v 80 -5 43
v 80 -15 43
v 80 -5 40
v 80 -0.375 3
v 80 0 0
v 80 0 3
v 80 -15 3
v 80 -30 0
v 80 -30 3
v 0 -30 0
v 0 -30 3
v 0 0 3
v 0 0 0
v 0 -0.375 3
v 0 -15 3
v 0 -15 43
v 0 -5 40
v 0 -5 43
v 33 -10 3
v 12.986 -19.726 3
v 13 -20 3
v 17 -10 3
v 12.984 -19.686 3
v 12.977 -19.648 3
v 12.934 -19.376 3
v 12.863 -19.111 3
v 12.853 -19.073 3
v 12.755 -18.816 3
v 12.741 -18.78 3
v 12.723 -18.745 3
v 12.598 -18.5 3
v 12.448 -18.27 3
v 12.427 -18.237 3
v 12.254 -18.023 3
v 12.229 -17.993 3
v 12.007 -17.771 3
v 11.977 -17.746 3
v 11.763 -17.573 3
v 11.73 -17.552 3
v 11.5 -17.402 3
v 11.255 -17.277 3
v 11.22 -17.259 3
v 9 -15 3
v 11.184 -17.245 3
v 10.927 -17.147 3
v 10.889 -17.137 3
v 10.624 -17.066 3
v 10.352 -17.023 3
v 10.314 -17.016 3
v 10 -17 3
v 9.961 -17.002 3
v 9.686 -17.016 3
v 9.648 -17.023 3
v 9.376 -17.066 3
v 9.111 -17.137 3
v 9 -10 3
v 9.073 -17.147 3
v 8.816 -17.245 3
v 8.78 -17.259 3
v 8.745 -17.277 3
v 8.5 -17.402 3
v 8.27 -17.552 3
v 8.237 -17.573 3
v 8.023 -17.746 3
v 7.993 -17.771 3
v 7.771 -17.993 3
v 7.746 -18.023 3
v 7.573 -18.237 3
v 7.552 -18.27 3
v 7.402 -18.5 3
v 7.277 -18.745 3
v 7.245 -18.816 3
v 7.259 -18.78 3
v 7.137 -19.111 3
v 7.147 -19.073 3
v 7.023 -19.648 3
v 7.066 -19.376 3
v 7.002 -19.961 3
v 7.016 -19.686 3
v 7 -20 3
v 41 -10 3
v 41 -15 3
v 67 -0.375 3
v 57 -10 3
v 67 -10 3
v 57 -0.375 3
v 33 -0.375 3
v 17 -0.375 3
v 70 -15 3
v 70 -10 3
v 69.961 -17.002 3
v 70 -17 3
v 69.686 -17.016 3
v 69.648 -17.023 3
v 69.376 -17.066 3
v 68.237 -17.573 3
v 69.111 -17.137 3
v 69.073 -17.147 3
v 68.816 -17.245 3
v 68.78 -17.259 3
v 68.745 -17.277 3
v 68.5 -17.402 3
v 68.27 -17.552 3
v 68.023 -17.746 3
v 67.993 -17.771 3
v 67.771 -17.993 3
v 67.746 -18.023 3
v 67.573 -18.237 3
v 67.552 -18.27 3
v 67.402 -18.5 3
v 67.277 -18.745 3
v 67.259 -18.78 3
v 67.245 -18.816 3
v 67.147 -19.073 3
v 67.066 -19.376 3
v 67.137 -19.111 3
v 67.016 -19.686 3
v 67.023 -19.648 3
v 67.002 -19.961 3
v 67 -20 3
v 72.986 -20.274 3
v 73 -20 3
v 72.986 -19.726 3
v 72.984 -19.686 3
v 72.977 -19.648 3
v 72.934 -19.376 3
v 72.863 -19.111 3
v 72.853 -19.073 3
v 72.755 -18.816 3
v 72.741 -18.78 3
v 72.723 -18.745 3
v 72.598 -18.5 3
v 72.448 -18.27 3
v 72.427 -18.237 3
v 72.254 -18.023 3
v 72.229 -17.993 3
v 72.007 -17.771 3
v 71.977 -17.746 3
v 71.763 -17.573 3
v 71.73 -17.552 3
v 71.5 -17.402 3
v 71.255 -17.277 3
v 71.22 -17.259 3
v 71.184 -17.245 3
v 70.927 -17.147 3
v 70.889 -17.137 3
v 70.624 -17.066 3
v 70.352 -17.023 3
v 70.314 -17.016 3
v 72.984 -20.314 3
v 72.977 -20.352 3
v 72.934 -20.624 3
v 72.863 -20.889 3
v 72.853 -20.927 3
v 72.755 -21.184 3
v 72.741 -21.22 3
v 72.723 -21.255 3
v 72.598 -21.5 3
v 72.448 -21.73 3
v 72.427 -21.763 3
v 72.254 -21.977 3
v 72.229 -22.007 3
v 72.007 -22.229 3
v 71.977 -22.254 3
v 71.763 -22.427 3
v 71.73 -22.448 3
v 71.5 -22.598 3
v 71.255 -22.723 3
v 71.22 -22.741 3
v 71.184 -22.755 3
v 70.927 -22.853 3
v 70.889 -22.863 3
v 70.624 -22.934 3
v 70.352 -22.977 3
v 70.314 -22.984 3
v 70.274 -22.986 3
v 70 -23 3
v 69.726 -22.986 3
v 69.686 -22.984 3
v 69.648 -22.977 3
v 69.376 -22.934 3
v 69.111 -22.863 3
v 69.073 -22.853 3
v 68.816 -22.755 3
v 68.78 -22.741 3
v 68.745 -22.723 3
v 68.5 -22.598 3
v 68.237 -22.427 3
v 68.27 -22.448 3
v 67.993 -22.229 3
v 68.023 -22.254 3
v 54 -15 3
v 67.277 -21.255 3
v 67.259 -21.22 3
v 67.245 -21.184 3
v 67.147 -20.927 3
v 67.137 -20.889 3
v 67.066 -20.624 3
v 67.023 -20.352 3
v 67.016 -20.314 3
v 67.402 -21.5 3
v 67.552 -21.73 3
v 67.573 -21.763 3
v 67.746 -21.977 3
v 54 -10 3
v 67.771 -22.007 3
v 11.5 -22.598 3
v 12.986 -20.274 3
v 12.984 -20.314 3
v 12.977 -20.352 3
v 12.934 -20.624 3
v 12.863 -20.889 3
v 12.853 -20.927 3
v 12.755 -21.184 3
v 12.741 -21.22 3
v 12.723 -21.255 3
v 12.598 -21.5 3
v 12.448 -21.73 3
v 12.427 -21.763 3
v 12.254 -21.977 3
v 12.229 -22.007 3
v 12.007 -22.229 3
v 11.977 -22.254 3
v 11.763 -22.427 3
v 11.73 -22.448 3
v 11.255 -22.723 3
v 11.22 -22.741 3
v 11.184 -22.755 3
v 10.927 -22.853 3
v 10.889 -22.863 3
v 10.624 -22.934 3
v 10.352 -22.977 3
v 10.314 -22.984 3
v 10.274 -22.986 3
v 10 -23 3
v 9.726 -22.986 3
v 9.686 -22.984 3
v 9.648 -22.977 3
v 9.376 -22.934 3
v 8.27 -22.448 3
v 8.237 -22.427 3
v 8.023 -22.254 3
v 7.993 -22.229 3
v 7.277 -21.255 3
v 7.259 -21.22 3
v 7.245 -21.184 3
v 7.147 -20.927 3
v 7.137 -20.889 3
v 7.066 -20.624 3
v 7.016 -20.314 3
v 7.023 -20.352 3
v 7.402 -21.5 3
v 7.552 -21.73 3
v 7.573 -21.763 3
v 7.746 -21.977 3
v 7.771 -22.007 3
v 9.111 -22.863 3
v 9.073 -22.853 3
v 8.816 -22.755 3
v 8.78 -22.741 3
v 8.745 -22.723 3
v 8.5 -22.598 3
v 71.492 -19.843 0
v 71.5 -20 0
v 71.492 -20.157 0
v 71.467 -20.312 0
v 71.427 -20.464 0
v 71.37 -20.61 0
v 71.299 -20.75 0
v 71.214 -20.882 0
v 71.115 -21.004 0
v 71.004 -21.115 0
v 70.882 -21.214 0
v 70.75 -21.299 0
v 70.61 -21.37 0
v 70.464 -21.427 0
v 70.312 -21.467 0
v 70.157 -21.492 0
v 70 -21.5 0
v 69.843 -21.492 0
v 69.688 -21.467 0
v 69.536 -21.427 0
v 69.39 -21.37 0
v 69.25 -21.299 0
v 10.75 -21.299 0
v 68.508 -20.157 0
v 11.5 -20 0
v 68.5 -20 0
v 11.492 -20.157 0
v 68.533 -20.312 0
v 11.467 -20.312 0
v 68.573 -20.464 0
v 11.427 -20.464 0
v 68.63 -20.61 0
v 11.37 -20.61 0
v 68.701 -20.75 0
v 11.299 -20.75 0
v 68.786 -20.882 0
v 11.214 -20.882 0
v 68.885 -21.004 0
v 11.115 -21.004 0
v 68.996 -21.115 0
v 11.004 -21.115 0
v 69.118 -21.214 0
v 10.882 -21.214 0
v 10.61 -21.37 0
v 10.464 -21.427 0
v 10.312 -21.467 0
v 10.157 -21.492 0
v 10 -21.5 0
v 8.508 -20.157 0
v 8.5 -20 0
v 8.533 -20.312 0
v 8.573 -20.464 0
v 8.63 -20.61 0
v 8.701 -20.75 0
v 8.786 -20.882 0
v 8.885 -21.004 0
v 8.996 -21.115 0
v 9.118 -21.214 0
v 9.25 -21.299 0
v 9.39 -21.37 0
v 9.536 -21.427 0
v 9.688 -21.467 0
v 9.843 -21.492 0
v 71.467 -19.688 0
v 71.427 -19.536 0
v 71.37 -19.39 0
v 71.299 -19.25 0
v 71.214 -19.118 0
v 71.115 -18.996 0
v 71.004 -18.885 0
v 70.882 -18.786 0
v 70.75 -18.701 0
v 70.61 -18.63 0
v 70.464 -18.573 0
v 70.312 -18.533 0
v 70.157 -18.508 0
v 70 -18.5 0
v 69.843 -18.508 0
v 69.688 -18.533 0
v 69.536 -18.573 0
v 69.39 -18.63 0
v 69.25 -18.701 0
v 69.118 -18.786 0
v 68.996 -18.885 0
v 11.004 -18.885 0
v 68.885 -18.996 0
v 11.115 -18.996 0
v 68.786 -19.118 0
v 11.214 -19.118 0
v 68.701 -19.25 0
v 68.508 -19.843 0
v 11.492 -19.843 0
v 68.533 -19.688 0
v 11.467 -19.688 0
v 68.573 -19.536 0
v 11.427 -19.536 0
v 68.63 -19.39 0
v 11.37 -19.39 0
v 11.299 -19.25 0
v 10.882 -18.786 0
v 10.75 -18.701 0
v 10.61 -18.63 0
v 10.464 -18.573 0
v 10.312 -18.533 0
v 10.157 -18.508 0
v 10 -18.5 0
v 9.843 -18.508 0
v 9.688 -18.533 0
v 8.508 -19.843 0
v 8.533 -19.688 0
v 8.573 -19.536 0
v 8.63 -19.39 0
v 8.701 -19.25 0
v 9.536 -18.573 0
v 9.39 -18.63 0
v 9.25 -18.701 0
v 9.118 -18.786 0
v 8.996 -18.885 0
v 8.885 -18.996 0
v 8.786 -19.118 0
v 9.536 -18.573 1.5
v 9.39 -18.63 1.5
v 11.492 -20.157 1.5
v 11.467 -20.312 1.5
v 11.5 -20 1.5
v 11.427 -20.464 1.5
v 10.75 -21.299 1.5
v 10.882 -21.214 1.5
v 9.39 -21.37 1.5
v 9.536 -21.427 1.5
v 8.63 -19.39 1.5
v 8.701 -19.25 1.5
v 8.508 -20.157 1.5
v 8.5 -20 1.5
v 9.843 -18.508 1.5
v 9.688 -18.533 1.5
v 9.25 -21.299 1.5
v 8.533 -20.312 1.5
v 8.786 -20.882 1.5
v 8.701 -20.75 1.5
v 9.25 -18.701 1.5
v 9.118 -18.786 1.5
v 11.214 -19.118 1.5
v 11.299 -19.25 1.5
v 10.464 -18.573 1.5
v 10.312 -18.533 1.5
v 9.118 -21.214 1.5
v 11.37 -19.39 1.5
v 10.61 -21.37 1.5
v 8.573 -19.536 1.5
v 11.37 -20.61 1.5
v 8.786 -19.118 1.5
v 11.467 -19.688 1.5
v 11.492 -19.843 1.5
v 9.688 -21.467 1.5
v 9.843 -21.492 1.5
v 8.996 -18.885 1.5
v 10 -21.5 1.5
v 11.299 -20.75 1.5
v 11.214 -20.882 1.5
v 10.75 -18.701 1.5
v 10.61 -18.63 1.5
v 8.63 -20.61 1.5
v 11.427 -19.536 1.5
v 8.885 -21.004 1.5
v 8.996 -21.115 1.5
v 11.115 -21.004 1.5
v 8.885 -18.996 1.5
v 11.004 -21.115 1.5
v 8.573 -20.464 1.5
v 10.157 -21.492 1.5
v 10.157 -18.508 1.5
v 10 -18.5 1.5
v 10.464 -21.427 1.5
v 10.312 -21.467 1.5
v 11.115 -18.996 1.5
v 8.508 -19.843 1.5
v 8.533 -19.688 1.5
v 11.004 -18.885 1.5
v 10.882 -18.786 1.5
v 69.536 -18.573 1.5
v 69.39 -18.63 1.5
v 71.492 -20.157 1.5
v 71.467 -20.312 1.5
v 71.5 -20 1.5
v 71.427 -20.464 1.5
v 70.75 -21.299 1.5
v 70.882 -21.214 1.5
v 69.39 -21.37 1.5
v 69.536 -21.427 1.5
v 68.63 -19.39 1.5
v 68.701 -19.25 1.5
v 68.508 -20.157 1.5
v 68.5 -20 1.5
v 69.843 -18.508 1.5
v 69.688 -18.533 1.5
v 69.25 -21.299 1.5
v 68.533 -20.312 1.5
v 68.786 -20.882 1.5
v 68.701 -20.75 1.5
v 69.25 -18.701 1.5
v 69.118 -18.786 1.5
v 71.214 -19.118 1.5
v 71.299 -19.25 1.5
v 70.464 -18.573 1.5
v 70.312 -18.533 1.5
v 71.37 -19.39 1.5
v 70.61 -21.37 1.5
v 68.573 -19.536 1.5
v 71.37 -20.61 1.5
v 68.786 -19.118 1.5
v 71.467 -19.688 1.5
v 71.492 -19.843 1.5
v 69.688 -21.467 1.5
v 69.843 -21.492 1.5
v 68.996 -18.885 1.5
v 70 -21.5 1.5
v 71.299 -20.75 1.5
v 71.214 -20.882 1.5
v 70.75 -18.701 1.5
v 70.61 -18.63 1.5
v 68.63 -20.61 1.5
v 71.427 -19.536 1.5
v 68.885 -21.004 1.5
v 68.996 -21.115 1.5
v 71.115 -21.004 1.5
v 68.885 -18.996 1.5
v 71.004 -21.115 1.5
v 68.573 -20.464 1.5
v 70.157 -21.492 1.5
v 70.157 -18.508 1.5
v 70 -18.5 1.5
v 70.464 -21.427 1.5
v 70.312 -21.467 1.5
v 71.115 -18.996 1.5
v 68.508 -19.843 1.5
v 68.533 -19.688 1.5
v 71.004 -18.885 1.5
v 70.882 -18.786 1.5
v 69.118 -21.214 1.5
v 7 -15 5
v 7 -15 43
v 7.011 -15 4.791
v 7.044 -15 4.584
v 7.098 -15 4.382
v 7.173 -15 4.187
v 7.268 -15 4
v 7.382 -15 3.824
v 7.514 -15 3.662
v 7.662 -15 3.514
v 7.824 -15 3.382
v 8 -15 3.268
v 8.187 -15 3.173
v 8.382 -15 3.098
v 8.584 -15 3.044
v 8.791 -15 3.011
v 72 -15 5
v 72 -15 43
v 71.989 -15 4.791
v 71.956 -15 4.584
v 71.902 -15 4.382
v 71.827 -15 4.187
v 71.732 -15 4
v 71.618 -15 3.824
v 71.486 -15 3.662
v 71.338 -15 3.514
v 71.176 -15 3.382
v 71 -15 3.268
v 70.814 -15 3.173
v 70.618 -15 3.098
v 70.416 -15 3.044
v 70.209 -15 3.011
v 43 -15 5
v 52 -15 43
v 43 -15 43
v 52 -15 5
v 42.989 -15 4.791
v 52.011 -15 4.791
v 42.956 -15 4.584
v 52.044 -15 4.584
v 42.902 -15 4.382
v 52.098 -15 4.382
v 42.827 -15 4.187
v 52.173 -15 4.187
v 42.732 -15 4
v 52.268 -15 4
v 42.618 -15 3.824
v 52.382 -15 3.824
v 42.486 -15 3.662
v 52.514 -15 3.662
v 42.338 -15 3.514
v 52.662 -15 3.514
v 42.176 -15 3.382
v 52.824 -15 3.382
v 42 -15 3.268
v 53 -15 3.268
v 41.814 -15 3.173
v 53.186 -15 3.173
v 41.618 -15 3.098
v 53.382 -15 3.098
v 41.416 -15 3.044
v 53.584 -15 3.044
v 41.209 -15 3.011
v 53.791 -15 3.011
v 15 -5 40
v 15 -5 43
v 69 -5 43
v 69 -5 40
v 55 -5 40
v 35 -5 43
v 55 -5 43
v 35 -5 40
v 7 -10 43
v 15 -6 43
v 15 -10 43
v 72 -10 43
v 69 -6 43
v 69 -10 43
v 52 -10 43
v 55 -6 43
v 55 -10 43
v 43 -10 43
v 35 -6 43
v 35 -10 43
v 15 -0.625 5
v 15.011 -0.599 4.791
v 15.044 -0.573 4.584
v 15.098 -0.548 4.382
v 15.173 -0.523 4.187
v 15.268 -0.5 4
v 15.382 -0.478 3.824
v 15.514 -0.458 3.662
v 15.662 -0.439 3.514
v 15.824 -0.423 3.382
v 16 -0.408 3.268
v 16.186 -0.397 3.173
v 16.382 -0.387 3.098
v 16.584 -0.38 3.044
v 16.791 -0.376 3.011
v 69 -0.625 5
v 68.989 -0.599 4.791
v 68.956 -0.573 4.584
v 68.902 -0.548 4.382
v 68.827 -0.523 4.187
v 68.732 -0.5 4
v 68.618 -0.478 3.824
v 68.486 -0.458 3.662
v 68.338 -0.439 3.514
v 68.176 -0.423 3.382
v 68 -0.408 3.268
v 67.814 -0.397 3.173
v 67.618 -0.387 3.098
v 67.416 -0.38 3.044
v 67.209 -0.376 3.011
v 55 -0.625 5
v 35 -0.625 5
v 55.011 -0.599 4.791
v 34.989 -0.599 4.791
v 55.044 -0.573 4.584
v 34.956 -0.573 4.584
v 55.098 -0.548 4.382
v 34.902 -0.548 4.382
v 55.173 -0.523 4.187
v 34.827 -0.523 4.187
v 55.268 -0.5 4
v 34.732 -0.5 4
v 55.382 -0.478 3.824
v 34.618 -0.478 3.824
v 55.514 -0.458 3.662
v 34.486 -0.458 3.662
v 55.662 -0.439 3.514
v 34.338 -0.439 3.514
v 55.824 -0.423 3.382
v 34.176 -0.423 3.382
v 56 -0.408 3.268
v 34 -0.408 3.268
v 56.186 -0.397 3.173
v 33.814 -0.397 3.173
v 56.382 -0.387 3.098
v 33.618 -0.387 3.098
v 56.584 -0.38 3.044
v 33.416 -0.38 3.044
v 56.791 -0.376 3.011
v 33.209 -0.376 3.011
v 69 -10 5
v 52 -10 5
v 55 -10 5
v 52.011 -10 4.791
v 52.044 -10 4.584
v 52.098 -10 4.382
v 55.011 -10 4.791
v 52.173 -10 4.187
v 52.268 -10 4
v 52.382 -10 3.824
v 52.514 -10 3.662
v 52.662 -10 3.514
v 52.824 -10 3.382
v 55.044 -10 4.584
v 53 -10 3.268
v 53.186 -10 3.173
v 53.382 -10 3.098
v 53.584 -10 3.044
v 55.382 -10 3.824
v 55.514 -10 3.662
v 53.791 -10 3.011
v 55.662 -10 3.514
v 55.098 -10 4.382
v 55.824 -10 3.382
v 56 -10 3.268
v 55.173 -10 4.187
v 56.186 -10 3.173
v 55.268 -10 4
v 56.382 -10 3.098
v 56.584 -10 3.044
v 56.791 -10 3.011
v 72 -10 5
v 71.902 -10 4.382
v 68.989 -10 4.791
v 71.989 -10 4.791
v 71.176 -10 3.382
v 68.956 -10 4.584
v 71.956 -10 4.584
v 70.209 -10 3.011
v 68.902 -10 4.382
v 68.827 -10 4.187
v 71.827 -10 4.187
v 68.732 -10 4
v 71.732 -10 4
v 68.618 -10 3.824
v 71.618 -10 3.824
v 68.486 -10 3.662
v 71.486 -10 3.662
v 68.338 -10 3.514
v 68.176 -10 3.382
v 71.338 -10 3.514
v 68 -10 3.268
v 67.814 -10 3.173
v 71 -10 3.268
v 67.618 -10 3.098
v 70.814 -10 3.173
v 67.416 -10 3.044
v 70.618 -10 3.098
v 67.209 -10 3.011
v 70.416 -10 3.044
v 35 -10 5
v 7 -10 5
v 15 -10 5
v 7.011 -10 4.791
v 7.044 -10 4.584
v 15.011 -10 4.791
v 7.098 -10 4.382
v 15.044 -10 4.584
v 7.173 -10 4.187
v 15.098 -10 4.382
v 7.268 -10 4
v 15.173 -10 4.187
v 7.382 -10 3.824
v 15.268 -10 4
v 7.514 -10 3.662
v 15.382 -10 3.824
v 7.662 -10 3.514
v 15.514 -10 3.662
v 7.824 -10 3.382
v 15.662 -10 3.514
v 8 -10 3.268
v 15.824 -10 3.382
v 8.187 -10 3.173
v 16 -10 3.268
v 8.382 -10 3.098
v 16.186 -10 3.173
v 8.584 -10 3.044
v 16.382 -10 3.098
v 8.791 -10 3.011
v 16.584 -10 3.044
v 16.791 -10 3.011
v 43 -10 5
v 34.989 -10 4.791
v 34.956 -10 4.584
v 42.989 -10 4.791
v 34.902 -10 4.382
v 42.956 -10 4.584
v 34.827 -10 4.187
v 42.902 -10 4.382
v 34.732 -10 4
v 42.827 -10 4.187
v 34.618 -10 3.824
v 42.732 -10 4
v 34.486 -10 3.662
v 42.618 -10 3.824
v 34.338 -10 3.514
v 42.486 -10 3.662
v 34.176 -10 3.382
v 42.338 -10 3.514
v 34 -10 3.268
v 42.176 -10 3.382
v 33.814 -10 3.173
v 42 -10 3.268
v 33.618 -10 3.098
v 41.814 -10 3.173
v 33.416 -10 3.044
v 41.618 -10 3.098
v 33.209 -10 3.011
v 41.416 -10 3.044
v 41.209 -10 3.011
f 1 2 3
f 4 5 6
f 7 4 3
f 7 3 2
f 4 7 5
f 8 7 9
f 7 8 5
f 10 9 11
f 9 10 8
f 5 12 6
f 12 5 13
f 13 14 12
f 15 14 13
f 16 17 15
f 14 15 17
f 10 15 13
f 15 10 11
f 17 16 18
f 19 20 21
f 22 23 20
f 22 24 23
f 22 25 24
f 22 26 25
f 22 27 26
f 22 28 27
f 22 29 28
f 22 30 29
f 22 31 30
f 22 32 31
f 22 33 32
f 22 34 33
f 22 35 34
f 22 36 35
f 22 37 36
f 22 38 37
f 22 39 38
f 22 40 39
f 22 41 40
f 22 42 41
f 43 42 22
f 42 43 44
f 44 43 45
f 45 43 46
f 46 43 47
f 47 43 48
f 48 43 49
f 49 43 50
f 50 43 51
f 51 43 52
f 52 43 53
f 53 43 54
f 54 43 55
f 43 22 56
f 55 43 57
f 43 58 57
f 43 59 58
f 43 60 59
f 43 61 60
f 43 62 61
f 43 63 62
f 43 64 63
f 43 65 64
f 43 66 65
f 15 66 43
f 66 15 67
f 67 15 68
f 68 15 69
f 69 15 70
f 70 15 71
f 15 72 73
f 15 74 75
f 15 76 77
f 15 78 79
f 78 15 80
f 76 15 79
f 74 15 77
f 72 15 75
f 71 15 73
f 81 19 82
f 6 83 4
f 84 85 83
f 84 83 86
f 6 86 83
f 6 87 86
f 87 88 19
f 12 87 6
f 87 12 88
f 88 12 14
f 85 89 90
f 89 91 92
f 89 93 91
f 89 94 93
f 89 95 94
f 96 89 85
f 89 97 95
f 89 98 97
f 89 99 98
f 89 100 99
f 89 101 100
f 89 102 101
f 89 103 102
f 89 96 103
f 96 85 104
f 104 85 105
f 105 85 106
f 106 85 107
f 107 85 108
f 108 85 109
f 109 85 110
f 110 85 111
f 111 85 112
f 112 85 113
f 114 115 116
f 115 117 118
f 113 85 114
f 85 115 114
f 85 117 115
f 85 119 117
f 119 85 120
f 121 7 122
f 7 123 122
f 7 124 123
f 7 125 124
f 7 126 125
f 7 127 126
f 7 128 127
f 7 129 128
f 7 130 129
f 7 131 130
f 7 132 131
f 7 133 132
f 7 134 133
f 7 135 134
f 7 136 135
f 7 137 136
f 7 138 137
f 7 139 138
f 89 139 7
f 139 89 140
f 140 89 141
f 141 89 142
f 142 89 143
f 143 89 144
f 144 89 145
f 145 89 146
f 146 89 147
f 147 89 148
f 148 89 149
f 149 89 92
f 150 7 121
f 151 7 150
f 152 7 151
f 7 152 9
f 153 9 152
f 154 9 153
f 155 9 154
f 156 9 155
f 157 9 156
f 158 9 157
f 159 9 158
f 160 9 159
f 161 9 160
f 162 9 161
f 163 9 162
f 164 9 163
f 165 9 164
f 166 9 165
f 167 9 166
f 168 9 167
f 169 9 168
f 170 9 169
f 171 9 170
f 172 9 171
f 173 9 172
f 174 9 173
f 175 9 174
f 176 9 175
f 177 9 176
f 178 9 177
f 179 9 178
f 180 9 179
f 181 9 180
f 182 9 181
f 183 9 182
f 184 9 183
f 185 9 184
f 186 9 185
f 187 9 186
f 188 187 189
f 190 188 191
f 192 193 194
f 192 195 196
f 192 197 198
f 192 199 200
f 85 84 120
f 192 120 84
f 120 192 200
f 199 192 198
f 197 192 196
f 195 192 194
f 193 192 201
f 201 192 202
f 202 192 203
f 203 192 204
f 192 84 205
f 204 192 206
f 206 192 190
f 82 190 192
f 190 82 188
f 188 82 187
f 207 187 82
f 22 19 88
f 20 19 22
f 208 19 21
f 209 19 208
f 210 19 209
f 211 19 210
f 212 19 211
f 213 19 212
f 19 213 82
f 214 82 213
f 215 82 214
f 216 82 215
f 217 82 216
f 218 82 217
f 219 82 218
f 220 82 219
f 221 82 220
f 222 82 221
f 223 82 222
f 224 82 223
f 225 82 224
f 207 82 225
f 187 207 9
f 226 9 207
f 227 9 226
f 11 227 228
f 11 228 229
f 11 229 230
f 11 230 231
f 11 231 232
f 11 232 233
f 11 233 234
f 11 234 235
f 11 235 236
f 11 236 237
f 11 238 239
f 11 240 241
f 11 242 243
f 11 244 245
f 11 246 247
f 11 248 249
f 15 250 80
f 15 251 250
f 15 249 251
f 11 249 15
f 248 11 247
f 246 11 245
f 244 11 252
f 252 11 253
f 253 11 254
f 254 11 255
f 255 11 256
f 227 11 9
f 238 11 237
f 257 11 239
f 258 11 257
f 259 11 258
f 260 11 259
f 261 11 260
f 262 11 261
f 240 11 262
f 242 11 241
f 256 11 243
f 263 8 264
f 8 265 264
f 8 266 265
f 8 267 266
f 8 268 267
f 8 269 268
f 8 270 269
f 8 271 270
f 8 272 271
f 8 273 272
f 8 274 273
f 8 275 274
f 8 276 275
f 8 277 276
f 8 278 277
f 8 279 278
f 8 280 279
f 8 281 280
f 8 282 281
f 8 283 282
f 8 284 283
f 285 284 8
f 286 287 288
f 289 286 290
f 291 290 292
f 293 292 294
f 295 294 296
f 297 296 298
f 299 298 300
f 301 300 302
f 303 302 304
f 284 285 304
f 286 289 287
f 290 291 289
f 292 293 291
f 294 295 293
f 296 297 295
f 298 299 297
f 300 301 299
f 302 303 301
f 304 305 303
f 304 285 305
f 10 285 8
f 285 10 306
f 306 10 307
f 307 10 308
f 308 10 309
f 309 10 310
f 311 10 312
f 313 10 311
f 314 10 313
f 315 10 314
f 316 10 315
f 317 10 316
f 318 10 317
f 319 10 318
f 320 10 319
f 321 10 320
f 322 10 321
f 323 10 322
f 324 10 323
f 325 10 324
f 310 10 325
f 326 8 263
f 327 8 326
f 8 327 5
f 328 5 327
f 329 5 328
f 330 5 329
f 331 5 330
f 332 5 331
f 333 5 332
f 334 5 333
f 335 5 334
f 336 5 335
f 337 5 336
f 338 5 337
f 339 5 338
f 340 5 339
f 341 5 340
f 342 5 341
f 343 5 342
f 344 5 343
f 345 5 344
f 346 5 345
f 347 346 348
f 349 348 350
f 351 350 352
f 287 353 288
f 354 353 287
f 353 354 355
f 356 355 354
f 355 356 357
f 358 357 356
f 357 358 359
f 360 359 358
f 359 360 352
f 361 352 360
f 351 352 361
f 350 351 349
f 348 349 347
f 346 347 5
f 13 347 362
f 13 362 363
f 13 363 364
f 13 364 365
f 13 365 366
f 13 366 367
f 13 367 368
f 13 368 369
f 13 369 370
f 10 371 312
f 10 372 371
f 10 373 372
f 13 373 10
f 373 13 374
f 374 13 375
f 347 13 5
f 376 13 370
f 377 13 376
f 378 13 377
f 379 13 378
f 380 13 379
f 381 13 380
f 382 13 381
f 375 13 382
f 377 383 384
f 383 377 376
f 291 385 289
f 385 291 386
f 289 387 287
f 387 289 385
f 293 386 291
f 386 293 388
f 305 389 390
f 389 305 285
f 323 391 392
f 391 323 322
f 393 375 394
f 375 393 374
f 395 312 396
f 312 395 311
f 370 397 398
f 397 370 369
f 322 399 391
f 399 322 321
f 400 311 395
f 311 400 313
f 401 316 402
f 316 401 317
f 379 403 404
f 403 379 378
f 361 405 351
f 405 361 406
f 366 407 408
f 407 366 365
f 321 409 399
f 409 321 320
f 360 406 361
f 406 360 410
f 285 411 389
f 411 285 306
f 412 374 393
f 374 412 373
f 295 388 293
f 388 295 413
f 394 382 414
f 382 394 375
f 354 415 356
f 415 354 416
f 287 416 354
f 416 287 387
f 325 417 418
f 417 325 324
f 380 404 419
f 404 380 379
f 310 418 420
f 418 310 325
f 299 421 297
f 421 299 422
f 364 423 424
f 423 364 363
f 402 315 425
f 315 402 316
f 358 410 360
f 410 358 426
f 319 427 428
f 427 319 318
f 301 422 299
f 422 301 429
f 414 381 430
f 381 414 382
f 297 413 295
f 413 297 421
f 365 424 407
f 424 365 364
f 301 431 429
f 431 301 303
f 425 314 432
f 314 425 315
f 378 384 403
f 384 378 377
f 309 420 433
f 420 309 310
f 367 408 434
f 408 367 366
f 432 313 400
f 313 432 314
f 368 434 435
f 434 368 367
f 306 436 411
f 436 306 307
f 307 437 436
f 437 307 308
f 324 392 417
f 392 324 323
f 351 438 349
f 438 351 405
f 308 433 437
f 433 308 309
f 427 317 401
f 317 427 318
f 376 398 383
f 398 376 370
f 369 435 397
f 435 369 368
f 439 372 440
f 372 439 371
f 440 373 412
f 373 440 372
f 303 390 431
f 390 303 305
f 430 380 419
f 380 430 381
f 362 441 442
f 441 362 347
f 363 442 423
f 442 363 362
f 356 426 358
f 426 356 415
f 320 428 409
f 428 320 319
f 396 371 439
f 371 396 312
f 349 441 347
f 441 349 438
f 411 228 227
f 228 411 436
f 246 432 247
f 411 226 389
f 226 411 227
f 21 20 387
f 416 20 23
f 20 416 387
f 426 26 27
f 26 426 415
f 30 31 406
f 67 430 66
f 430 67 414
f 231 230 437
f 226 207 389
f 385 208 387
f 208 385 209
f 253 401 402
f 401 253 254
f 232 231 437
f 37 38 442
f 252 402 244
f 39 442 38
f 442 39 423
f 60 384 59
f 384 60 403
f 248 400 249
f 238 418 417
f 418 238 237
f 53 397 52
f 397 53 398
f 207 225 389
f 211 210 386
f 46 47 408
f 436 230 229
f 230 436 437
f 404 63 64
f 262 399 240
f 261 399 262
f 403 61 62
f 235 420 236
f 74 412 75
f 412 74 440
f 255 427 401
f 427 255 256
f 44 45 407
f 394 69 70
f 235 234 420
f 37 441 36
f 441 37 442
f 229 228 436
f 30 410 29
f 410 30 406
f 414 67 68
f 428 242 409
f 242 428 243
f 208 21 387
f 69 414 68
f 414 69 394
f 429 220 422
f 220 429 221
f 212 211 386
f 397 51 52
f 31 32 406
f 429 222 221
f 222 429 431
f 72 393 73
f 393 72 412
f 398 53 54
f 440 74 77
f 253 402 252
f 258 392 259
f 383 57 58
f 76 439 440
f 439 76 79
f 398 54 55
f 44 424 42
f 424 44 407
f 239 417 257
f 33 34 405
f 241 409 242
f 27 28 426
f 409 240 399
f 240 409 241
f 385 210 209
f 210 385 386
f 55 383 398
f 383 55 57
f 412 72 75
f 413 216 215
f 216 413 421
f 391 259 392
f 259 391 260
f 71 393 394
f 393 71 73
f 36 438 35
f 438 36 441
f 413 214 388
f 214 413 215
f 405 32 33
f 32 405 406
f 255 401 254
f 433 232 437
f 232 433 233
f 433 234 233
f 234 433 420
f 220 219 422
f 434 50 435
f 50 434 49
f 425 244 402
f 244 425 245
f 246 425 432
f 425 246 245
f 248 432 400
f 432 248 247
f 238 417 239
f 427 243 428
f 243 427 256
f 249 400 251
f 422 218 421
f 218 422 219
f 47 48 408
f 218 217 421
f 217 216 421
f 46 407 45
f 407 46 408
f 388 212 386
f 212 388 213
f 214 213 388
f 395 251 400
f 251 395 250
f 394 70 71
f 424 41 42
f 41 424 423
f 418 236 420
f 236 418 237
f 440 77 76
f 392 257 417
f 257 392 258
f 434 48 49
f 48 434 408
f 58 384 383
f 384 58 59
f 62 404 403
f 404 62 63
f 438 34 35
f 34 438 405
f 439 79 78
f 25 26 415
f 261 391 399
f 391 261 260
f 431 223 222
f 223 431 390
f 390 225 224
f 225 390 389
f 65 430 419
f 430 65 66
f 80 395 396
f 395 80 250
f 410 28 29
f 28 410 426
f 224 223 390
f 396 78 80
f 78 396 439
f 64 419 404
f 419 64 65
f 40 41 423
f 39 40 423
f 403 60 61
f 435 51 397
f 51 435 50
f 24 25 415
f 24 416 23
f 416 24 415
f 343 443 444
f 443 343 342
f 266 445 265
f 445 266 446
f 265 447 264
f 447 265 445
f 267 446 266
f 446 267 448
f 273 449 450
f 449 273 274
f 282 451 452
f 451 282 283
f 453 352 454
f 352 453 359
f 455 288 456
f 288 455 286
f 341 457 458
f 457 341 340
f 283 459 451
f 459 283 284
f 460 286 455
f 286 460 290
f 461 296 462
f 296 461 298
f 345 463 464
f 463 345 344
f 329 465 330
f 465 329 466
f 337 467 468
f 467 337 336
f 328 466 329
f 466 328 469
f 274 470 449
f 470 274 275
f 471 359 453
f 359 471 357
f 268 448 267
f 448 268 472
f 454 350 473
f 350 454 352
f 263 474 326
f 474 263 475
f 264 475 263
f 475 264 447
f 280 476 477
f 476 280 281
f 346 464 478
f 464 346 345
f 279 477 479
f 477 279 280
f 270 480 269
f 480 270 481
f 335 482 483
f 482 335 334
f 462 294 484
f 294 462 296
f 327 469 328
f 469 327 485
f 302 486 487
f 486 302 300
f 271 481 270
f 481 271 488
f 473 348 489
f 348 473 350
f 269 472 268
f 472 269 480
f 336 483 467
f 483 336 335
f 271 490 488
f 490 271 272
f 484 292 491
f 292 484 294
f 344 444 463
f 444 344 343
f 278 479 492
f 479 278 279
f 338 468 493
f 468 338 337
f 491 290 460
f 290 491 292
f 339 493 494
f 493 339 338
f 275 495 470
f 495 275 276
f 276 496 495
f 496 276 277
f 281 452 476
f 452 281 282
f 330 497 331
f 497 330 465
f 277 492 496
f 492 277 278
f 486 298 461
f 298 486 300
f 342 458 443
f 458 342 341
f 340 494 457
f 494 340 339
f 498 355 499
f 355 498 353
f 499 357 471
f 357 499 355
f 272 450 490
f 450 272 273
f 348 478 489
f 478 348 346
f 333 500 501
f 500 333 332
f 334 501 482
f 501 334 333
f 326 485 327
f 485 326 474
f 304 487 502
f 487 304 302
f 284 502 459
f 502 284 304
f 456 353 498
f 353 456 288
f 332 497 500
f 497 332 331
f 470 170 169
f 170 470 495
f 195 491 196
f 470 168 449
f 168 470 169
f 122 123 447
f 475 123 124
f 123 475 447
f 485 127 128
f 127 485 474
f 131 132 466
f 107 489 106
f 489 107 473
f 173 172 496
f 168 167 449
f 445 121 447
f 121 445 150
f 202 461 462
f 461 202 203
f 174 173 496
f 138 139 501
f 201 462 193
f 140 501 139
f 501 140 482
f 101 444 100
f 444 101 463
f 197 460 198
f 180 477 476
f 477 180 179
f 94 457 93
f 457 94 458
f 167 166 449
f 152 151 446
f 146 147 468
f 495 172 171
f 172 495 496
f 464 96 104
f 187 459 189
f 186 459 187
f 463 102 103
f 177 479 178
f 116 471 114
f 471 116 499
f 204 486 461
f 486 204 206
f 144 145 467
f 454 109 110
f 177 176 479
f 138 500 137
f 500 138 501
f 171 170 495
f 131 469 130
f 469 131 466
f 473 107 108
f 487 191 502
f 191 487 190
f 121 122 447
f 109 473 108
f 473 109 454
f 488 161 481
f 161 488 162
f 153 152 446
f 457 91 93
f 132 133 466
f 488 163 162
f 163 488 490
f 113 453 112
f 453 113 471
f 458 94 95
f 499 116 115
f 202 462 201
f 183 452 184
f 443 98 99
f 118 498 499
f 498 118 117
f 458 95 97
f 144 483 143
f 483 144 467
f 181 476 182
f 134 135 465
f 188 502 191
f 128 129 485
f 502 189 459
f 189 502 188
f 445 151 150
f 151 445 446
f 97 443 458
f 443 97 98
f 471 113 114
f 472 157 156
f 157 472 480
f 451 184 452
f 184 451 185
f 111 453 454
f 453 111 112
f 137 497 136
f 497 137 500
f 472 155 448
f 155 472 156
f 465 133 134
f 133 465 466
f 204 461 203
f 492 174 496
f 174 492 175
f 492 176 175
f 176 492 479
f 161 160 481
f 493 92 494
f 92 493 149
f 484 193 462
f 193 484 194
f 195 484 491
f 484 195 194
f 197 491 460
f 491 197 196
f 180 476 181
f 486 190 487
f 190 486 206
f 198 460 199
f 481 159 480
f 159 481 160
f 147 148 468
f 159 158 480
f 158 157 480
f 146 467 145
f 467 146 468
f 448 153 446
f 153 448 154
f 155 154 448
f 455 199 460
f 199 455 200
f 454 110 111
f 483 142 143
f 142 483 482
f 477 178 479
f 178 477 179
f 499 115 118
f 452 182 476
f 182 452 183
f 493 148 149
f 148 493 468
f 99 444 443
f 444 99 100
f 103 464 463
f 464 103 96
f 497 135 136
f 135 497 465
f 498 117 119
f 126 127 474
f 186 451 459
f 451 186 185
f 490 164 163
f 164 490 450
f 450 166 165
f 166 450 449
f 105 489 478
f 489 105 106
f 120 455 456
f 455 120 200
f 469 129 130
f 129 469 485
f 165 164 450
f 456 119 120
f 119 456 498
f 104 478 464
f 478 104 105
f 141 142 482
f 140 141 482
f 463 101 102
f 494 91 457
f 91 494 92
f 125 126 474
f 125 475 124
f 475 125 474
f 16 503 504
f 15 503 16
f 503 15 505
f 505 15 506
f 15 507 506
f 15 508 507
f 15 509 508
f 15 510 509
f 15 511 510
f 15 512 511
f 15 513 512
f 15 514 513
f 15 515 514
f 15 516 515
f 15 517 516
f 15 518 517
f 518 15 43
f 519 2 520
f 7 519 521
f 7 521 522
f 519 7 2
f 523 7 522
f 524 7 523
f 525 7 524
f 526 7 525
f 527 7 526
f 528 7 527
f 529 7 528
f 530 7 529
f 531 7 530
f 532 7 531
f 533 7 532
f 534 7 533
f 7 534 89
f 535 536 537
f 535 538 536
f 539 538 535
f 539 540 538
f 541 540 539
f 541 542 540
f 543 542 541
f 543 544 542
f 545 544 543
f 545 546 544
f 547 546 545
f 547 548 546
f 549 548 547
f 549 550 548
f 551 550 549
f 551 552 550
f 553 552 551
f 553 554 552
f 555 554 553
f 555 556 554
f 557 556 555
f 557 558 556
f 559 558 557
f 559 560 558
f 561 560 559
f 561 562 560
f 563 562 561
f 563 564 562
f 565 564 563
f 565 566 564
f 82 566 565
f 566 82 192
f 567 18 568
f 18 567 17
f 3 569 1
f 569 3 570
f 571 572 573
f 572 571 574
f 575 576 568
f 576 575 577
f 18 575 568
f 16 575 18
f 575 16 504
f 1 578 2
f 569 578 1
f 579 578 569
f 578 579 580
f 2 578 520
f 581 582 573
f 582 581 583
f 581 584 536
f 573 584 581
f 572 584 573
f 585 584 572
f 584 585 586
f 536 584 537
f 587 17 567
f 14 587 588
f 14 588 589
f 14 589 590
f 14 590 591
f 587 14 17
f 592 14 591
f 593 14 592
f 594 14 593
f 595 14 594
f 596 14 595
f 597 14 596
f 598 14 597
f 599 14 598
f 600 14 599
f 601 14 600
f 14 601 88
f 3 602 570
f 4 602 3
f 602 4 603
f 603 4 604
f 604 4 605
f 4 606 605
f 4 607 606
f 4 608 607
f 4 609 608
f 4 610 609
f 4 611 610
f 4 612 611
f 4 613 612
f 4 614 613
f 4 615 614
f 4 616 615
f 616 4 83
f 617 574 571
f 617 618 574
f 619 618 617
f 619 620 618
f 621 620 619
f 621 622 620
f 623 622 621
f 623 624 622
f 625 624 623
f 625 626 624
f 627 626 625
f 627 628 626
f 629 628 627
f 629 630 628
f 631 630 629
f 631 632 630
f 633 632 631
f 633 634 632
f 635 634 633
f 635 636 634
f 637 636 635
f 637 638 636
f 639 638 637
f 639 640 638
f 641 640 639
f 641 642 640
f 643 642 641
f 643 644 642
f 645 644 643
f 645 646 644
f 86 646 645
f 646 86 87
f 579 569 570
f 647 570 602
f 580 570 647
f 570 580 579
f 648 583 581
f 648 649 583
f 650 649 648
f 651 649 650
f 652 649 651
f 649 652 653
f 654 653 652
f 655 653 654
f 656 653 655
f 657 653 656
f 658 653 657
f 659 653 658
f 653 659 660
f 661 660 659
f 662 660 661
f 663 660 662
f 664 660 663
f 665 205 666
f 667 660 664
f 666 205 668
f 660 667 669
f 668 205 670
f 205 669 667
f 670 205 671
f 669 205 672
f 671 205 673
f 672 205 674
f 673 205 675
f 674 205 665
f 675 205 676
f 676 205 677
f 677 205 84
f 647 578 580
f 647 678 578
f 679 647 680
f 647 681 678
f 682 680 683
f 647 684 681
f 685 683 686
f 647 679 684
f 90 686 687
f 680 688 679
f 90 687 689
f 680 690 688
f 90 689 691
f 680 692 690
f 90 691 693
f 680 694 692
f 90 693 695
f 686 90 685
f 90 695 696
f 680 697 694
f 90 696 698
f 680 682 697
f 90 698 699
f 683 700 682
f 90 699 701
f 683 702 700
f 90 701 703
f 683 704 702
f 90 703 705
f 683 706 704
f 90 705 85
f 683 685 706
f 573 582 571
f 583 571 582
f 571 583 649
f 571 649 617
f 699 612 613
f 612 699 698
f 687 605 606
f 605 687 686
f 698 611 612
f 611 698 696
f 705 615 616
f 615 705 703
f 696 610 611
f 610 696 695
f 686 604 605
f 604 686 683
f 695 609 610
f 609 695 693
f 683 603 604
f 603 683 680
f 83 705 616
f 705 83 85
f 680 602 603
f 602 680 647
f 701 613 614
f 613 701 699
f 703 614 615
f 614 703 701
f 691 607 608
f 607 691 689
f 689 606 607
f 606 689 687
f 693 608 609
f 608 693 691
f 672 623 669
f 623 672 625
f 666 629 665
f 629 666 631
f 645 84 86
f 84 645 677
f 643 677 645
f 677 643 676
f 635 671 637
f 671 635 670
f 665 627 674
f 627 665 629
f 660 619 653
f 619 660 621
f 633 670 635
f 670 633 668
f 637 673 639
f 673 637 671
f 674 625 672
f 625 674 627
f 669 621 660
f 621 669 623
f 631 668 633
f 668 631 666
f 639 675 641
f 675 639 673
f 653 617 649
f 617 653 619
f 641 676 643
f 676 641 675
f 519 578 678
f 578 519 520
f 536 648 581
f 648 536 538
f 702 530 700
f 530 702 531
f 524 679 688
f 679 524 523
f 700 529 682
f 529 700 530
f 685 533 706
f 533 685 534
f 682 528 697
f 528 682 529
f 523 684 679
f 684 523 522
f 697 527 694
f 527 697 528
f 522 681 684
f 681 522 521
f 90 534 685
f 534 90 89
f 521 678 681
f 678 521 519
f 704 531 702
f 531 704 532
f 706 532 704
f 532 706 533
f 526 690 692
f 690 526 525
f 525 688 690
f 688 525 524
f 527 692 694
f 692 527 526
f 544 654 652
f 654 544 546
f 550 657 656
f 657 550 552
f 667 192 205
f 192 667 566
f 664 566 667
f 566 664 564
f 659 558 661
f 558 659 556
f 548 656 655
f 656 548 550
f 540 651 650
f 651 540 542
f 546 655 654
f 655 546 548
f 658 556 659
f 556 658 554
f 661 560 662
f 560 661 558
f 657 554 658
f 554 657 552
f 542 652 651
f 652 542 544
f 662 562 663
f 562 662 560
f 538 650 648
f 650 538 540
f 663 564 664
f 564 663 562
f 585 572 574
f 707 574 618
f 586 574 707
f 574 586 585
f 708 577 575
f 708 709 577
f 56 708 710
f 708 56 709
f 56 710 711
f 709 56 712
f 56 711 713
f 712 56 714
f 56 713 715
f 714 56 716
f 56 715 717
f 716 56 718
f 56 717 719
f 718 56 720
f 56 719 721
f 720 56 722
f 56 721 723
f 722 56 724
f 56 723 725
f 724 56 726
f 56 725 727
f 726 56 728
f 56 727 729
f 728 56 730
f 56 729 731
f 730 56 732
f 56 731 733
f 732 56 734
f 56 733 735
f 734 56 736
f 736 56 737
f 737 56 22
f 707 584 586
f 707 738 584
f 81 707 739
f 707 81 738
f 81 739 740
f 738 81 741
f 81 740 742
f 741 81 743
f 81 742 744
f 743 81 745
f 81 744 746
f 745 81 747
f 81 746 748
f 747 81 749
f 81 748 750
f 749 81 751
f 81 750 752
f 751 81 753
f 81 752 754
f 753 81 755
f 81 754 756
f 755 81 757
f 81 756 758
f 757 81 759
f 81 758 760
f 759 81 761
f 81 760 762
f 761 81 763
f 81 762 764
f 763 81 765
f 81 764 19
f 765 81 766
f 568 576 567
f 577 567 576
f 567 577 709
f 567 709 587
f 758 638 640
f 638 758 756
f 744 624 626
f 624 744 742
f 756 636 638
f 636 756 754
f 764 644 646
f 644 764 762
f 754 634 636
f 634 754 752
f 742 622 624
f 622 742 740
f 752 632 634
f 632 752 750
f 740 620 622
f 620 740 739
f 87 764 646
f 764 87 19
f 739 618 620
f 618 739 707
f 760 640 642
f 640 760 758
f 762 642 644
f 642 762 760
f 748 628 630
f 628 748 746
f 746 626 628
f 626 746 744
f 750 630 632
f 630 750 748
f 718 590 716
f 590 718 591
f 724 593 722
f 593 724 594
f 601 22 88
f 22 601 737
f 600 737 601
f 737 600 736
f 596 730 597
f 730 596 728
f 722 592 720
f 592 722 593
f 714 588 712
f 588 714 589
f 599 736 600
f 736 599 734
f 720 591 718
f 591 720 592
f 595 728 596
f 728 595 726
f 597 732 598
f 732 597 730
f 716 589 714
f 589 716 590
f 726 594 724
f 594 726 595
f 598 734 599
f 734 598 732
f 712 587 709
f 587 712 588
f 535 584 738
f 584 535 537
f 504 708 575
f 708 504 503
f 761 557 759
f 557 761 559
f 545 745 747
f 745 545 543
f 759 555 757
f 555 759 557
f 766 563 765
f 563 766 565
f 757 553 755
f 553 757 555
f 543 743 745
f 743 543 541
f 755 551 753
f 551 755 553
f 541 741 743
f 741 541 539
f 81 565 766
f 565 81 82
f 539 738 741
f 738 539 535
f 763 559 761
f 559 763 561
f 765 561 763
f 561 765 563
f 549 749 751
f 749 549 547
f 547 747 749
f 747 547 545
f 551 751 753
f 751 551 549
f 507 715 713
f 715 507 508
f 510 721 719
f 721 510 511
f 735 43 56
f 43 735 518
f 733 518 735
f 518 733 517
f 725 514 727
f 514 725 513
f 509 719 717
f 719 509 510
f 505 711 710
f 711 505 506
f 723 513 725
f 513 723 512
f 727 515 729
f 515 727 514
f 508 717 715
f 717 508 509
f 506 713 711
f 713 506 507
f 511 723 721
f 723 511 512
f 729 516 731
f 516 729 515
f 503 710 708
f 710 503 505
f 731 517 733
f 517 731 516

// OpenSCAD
$fn = 60;

rotate([90, 0, 0]) {
 difference () {
   cube([80, 3, 30]);
   translate([10, 4, 20]) rotate([90, 0, 0]) cylinder(5, r=1.5);
   translate([10, 1.5, 20]) rotate([-90, 0, 0]) cylinder(2, r1=1.5, r2=3.5);
   translate([70, 4, 20]) rotate([90, 0, 0]) cylinder(5, r=1.5);
   translate([70, 1.5, 20]) rotate([-90, 0, 0]) cylinder(2, r1=1.5, r2=3.5);
 

 
   }



translate([0, 0, 5]) 
difference () {
  union () {
  translate([0, 3, 0]) cube([80, 40, 10]);
  translate([0, 0, -5]) rotate([90, 0, 90]) linear_extrude(height=80) polygon([[0,0], [40,5], [0,5]]);
  }
  translate([79-20-4, 5, -5]) cube([14, 39, 10]);
  translate([91-20-4, 5, -5]) cylinder(10, r=2);
  translate([81-20-4, 5, -5]) cylinder(10, r=2);
  translate([81-20-4, 3, -5]) cube([10,2,16]);


  translate([80-20-8, 5, 5]) cube([20, 39, 6]);
  translate([94-20-4, 5, 5]) cylinder(6, r=2);
  translate([78-20-4, 5, 5]) cylinder(6, r=2);
  translate([82-20-8, 3, 5]) cube([16,2,6]);


  
  translate([40-21-4, 5, -5]) cube([20, 39, 10]);
  translate([57-20-4, 5, -5]) cylinder(14, r=2);
  translate([41-20-4, 5, -5]) cylinder(14, r=2);
  translate([41-20-4, 3, -5]) cube([16,2,10]);


  translate([40-21-12, 5, 5]) cube([36, 39, 6]);
  translate([65-20-4, 5, 5]) cylinder(6, r=2);
  translate([33-20-4, 5, 5]) cylinder(6, r=2);
  translate([37-20-8, 3, 5]) cube([32,2,6]);


}





translate([15, 40, 5]) rotate([0, -90, 0]) linear_extrude(height=8) polygon([[0,0], [0, 3], [1,3]]);

translate([43, 40, 5]) rotate([0, -90, 0]) linear_extrude(height=8) polygon([[0,0], [0, 3], [1,3]]);

translate([55, 40, 5]) rotate([0, -90, 0]) linear_extrude(height=3) polygon([[0,0], [0, 3], [1,3]]);

translate([72, 40, 5]) rotate([0, -90, 0]) linear_extrude(height=3) polygon([[0,0], [0, 3], [1,3]]);


}
